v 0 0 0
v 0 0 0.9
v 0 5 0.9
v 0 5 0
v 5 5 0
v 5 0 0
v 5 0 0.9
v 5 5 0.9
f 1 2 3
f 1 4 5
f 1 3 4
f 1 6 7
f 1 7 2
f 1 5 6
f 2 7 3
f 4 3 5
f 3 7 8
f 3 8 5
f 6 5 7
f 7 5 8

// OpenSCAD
/* Warning, this is a very basic generator with a lot of approximation 
input data : [VQFN, S2B, 5x5x0.9mm, 40, , A, C04-21398A]
generated by com.zoubworld.electronics.cad.model3d.Basic
Date : Sun Feb 15 10:50:49 CET 2026
*/

//body
color("black")
translate([0,0,0])
cube([5.0,5.0,0.9], center=false);
